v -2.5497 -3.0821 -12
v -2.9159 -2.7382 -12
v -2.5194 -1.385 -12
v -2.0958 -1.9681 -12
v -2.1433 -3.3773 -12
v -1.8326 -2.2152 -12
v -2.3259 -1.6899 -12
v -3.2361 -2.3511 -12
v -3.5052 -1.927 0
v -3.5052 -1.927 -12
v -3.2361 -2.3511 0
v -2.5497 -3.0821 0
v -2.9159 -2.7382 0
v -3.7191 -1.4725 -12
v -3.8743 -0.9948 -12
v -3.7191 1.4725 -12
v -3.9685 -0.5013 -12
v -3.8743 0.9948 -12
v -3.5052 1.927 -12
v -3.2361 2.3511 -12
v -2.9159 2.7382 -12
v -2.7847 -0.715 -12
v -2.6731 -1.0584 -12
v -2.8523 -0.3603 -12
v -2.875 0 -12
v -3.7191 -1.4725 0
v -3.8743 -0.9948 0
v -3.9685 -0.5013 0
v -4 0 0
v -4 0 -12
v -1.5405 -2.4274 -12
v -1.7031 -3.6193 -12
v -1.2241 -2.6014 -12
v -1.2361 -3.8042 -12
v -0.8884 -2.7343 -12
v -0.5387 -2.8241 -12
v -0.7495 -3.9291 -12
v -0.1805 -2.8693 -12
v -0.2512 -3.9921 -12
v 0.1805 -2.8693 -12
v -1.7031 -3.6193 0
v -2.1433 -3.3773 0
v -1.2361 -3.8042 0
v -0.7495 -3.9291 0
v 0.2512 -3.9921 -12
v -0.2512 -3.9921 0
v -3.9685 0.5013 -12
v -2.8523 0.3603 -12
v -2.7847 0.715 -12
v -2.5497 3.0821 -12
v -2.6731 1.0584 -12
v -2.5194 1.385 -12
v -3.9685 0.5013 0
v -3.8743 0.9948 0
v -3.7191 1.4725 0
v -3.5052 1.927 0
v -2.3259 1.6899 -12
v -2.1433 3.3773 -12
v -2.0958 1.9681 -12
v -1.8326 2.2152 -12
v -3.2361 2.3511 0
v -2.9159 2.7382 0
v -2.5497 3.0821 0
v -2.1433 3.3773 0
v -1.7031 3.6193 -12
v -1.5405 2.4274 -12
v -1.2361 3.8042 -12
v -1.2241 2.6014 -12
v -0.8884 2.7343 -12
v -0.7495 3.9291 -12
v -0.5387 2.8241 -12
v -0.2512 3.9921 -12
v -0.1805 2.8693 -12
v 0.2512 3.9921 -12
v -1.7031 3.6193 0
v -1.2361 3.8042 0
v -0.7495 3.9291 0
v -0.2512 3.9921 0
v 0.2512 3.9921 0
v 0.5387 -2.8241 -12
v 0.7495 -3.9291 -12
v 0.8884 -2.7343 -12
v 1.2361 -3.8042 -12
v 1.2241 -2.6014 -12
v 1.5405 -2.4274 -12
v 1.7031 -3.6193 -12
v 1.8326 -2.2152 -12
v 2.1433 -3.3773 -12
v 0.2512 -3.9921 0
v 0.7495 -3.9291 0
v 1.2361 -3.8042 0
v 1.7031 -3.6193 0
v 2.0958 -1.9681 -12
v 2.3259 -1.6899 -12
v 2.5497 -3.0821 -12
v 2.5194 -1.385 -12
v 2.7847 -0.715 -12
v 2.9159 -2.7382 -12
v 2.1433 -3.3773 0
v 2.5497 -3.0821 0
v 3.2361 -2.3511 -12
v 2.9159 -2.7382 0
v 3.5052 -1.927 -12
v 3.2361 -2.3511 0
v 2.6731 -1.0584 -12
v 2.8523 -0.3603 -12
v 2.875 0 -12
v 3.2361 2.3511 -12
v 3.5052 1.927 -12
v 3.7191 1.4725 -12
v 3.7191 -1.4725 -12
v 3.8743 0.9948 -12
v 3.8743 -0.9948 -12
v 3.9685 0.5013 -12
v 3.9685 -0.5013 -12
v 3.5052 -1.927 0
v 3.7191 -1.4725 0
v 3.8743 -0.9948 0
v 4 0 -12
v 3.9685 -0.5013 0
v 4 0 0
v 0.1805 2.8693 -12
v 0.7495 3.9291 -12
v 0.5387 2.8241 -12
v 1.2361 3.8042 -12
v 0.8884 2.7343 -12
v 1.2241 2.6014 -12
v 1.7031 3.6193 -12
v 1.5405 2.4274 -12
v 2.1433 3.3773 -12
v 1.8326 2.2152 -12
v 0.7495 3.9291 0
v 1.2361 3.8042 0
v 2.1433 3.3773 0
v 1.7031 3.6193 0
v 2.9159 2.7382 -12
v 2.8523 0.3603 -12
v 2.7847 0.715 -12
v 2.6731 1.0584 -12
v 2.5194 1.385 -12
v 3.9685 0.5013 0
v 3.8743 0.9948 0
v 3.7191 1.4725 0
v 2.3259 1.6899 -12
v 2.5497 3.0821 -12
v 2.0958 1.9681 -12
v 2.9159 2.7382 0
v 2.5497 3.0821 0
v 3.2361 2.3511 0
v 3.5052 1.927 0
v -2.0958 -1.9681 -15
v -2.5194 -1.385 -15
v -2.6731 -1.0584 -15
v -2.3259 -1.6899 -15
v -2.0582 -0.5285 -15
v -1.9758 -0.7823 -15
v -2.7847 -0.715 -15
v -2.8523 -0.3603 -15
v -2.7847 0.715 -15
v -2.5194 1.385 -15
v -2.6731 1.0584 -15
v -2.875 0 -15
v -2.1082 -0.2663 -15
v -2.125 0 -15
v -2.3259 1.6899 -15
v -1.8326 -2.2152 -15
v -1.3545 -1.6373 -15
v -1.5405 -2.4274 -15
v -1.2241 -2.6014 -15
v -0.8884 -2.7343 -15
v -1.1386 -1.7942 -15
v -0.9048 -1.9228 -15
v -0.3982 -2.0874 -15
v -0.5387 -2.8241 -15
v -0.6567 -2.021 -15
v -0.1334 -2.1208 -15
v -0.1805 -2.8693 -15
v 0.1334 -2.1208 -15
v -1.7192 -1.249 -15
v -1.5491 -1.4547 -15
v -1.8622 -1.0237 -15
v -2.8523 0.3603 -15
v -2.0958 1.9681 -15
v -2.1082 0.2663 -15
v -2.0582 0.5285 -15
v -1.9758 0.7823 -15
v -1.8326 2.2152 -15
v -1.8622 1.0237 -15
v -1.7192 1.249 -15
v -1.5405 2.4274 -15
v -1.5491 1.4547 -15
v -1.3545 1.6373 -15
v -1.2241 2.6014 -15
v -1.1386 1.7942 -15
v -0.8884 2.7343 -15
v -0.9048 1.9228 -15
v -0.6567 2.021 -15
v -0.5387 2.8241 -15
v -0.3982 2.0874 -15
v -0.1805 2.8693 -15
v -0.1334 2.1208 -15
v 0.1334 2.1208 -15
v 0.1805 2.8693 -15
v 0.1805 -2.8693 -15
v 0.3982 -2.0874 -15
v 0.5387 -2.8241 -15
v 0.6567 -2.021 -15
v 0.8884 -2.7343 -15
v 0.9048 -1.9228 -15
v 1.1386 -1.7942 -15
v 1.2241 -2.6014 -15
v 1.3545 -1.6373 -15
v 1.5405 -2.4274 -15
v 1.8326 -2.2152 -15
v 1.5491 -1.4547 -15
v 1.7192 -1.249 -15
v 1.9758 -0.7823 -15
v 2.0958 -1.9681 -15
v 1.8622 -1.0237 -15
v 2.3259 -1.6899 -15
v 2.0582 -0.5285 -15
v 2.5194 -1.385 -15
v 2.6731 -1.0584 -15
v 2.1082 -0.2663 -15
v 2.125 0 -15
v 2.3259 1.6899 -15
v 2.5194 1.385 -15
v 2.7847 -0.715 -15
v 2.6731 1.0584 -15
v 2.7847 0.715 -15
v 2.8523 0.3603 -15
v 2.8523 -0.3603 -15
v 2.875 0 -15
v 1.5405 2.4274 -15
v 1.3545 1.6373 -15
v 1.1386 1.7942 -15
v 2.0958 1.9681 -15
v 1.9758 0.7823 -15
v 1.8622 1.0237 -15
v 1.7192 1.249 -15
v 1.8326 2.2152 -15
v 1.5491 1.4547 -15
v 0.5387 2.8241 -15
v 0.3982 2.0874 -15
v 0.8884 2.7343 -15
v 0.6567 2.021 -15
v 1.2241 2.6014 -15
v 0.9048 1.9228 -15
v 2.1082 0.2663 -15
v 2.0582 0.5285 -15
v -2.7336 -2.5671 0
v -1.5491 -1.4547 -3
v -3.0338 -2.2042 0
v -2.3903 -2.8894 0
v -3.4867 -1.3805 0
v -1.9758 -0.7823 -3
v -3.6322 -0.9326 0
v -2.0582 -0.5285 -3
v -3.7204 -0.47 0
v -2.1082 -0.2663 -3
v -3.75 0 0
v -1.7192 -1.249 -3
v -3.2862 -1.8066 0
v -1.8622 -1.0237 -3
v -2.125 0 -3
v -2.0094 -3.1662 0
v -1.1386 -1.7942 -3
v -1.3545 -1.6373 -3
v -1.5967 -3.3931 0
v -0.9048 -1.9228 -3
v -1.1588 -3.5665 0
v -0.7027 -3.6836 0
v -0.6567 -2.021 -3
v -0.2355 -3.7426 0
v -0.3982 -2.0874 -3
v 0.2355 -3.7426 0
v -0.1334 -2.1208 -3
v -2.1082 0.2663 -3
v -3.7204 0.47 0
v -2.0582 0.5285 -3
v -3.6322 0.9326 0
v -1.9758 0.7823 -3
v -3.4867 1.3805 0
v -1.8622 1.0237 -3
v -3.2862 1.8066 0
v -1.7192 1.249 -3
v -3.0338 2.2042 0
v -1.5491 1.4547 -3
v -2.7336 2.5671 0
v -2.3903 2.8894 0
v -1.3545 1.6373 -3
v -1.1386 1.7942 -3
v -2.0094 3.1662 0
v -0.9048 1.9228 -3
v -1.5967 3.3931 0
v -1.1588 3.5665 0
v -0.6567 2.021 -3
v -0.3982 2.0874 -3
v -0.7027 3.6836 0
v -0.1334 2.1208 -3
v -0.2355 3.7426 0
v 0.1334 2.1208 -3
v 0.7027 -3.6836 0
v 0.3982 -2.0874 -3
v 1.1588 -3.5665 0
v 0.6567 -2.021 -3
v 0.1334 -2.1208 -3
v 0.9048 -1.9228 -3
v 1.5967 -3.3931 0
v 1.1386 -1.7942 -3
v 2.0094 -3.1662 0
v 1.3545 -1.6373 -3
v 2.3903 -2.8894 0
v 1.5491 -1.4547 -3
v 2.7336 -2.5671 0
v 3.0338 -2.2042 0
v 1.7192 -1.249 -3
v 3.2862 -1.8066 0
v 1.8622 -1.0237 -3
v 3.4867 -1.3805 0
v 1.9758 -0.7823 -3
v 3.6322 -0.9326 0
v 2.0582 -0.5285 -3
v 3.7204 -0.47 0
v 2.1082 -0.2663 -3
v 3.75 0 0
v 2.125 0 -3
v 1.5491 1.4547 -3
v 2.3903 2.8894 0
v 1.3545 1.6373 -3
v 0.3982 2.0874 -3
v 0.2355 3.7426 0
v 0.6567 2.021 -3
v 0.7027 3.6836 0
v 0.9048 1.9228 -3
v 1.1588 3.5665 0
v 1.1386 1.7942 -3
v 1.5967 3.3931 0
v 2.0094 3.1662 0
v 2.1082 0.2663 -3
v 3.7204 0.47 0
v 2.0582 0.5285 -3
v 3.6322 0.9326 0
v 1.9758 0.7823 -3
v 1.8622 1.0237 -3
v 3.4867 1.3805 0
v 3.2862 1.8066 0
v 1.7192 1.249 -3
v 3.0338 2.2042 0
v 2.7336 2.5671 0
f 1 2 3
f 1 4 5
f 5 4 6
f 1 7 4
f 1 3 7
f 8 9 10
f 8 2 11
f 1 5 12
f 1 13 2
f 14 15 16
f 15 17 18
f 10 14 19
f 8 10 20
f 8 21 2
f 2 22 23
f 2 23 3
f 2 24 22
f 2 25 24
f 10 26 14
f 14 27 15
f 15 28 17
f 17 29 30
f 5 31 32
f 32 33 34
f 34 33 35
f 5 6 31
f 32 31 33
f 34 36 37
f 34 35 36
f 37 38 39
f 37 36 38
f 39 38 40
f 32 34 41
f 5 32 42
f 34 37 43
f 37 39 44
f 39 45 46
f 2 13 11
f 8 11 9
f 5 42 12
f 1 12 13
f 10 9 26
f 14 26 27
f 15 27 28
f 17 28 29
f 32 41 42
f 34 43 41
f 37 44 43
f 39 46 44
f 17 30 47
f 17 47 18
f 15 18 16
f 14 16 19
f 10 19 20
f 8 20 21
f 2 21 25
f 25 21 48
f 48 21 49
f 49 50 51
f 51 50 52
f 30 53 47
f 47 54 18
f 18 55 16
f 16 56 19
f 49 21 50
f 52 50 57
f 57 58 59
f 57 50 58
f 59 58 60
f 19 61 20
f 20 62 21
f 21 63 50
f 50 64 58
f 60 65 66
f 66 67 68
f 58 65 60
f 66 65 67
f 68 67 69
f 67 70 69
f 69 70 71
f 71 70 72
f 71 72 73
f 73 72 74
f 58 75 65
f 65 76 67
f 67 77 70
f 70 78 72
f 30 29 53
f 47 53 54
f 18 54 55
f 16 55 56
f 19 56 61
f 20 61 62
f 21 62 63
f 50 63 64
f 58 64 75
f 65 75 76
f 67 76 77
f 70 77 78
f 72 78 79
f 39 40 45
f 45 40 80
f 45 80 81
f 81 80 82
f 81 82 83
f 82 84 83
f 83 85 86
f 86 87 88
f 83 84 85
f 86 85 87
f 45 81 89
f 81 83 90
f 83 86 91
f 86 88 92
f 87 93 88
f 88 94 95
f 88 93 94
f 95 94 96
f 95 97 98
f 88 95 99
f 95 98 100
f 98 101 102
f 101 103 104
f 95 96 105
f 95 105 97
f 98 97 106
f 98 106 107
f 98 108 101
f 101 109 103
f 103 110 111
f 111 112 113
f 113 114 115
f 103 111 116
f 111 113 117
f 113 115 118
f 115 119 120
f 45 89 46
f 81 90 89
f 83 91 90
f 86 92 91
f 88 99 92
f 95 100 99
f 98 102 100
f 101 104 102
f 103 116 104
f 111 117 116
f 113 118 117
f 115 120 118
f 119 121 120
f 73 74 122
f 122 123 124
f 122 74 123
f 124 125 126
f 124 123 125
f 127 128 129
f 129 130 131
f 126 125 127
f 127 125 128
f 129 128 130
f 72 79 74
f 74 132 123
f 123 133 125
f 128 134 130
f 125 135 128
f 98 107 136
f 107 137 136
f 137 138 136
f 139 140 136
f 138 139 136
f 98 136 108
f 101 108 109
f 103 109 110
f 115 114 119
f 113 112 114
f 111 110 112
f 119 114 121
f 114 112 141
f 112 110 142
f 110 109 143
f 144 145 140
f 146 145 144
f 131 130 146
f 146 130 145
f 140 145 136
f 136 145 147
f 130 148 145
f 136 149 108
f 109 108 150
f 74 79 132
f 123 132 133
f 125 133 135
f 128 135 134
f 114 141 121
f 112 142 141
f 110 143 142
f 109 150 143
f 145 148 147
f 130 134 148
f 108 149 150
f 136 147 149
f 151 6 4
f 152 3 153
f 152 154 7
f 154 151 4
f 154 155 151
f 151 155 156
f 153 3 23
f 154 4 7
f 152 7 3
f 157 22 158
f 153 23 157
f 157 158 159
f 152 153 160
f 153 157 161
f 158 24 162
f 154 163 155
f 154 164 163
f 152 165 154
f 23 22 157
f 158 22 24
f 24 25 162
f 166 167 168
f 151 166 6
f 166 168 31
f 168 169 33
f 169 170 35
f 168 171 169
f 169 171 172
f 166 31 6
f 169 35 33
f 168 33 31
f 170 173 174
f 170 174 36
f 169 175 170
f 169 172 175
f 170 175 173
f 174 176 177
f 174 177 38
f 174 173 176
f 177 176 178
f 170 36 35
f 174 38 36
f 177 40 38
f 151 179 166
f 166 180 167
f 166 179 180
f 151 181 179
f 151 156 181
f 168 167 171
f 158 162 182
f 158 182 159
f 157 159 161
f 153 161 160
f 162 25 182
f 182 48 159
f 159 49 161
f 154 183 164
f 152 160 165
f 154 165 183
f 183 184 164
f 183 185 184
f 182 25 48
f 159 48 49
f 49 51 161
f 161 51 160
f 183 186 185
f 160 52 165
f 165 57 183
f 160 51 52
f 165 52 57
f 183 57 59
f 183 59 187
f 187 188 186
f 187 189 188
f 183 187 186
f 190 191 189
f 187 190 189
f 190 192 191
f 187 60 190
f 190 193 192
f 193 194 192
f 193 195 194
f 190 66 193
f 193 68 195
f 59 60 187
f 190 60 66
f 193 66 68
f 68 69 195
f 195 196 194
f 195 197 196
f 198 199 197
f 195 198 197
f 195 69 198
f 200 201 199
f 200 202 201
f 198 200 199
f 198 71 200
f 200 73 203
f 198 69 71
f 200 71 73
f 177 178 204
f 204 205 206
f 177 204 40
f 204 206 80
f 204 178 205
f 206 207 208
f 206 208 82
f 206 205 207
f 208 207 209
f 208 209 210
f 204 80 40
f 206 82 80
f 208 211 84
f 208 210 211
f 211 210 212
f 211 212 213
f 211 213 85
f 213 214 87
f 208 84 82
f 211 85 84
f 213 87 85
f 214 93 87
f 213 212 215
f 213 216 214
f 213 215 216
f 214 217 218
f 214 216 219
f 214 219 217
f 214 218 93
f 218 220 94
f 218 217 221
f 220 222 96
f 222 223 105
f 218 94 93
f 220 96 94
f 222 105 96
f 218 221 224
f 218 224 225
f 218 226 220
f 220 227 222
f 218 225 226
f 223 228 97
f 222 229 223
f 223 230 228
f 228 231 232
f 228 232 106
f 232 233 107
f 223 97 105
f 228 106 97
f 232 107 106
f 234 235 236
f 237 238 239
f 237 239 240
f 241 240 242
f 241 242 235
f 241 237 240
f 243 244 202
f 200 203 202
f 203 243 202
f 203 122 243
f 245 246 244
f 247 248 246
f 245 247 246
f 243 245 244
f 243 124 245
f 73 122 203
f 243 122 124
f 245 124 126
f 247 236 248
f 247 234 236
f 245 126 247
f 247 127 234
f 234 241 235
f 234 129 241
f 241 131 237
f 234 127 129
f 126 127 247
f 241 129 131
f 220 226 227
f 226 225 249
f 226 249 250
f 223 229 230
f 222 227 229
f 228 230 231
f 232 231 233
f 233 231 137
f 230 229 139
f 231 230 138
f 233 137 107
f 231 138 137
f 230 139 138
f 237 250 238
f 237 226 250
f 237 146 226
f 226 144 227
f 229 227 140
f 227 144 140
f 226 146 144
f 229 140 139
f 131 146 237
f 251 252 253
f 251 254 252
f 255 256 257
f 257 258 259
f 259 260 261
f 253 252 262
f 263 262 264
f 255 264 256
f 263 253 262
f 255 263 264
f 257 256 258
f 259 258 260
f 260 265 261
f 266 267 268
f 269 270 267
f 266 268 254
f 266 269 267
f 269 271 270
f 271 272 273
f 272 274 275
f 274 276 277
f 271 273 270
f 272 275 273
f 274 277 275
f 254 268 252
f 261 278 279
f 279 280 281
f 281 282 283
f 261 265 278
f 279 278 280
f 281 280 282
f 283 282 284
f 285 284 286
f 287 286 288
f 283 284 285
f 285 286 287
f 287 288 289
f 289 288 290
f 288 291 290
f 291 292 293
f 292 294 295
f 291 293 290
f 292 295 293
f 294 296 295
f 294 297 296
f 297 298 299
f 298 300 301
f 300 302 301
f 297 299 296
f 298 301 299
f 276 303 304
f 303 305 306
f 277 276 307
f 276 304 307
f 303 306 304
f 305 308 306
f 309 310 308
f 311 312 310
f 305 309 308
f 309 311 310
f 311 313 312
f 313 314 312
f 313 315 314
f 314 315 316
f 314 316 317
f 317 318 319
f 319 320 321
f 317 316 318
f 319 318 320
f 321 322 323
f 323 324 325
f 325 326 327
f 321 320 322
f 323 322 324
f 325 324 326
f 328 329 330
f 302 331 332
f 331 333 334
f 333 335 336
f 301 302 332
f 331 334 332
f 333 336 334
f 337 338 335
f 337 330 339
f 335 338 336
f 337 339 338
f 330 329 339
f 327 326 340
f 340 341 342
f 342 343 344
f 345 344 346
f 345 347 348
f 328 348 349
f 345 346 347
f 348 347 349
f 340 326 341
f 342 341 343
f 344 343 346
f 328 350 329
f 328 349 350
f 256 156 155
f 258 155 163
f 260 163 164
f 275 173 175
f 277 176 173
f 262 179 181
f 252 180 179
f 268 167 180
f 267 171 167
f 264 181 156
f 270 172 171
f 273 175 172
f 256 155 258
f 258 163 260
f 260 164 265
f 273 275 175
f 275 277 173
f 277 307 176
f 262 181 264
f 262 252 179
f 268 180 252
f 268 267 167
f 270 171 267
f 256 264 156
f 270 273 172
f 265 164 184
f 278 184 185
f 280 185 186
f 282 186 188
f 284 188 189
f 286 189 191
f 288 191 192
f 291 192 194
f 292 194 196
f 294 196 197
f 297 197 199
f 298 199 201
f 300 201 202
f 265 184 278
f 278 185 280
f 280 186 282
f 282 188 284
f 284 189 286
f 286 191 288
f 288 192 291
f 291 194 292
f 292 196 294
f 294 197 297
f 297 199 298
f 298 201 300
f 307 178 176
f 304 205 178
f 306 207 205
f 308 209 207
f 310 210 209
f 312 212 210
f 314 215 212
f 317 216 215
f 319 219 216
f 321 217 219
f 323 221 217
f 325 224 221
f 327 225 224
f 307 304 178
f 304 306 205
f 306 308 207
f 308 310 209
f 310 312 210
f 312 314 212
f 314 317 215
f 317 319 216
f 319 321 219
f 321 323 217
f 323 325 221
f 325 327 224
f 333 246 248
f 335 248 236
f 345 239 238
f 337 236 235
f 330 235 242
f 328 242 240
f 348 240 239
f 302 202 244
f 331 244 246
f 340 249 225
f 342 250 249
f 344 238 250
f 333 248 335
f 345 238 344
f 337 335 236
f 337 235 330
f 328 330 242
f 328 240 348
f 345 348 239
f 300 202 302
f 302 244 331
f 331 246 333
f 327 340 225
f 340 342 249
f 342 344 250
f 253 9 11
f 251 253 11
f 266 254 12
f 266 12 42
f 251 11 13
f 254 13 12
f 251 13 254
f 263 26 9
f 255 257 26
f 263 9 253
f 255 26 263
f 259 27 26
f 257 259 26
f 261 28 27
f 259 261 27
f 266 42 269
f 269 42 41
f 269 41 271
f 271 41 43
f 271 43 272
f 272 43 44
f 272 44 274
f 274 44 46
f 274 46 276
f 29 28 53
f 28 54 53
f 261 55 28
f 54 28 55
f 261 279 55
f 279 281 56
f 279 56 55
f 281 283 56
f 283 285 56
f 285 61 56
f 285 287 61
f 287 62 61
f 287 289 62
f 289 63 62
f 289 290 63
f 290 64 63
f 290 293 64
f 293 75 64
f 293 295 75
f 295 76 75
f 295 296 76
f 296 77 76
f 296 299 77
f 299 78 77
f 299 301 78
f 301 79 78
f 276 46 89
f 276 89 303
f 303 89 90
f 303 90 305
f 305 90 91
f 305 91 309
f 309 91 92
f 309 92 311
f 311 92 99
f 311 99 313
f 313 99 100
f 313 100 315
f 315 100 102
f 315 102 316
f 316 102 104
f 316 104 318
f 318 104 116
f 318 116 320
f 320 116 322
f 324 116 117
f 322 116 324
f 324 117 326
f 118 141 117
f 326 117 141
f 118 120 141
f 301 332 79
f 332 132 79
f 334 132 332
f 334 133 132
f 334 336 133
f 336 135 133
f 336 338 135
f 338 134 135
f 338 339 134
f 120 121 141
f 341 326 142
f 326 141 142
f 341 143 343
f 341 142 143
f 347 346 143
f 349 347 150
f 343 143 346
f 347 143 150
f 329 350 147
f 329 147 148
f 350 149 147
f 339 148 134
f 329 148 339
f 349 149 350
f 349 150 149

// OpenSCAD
$fn = 50;

difference() {
	union() {
		translate(v = [0, 0, -12.0]) {
			cylinder(h = 15, r = 4.0);
		}
		#translate(v = [0, 0, -15.0]) {
			cylinder(h = 15, r = 2.875);
		}
	}
	union() {
		translate(v = [0, 0, 0]) {
			rotate(a = [0, 0, 0]) {
				difference() {
					union() {
						translate(v = [0, 0, -15.0]) {
							cylinder(h = 15, r = 2.0);
						}
						translate(v = [0, 0, -3]) {
							cylinder(h = 3, r1 = 2.125, r2 = 3.75);
						}
						translate(v = [0, 0, -15.0]) {
							cylinder(h = 15, r = 2.125);
						}
						translate(v = [0, 0, -15.0]) {
							cylinder(h = 15, r = 2.0);
						}
					}
					union();
				}
			}
		}
		#cylinder(h = 3, r = 5.0);
	}
}
